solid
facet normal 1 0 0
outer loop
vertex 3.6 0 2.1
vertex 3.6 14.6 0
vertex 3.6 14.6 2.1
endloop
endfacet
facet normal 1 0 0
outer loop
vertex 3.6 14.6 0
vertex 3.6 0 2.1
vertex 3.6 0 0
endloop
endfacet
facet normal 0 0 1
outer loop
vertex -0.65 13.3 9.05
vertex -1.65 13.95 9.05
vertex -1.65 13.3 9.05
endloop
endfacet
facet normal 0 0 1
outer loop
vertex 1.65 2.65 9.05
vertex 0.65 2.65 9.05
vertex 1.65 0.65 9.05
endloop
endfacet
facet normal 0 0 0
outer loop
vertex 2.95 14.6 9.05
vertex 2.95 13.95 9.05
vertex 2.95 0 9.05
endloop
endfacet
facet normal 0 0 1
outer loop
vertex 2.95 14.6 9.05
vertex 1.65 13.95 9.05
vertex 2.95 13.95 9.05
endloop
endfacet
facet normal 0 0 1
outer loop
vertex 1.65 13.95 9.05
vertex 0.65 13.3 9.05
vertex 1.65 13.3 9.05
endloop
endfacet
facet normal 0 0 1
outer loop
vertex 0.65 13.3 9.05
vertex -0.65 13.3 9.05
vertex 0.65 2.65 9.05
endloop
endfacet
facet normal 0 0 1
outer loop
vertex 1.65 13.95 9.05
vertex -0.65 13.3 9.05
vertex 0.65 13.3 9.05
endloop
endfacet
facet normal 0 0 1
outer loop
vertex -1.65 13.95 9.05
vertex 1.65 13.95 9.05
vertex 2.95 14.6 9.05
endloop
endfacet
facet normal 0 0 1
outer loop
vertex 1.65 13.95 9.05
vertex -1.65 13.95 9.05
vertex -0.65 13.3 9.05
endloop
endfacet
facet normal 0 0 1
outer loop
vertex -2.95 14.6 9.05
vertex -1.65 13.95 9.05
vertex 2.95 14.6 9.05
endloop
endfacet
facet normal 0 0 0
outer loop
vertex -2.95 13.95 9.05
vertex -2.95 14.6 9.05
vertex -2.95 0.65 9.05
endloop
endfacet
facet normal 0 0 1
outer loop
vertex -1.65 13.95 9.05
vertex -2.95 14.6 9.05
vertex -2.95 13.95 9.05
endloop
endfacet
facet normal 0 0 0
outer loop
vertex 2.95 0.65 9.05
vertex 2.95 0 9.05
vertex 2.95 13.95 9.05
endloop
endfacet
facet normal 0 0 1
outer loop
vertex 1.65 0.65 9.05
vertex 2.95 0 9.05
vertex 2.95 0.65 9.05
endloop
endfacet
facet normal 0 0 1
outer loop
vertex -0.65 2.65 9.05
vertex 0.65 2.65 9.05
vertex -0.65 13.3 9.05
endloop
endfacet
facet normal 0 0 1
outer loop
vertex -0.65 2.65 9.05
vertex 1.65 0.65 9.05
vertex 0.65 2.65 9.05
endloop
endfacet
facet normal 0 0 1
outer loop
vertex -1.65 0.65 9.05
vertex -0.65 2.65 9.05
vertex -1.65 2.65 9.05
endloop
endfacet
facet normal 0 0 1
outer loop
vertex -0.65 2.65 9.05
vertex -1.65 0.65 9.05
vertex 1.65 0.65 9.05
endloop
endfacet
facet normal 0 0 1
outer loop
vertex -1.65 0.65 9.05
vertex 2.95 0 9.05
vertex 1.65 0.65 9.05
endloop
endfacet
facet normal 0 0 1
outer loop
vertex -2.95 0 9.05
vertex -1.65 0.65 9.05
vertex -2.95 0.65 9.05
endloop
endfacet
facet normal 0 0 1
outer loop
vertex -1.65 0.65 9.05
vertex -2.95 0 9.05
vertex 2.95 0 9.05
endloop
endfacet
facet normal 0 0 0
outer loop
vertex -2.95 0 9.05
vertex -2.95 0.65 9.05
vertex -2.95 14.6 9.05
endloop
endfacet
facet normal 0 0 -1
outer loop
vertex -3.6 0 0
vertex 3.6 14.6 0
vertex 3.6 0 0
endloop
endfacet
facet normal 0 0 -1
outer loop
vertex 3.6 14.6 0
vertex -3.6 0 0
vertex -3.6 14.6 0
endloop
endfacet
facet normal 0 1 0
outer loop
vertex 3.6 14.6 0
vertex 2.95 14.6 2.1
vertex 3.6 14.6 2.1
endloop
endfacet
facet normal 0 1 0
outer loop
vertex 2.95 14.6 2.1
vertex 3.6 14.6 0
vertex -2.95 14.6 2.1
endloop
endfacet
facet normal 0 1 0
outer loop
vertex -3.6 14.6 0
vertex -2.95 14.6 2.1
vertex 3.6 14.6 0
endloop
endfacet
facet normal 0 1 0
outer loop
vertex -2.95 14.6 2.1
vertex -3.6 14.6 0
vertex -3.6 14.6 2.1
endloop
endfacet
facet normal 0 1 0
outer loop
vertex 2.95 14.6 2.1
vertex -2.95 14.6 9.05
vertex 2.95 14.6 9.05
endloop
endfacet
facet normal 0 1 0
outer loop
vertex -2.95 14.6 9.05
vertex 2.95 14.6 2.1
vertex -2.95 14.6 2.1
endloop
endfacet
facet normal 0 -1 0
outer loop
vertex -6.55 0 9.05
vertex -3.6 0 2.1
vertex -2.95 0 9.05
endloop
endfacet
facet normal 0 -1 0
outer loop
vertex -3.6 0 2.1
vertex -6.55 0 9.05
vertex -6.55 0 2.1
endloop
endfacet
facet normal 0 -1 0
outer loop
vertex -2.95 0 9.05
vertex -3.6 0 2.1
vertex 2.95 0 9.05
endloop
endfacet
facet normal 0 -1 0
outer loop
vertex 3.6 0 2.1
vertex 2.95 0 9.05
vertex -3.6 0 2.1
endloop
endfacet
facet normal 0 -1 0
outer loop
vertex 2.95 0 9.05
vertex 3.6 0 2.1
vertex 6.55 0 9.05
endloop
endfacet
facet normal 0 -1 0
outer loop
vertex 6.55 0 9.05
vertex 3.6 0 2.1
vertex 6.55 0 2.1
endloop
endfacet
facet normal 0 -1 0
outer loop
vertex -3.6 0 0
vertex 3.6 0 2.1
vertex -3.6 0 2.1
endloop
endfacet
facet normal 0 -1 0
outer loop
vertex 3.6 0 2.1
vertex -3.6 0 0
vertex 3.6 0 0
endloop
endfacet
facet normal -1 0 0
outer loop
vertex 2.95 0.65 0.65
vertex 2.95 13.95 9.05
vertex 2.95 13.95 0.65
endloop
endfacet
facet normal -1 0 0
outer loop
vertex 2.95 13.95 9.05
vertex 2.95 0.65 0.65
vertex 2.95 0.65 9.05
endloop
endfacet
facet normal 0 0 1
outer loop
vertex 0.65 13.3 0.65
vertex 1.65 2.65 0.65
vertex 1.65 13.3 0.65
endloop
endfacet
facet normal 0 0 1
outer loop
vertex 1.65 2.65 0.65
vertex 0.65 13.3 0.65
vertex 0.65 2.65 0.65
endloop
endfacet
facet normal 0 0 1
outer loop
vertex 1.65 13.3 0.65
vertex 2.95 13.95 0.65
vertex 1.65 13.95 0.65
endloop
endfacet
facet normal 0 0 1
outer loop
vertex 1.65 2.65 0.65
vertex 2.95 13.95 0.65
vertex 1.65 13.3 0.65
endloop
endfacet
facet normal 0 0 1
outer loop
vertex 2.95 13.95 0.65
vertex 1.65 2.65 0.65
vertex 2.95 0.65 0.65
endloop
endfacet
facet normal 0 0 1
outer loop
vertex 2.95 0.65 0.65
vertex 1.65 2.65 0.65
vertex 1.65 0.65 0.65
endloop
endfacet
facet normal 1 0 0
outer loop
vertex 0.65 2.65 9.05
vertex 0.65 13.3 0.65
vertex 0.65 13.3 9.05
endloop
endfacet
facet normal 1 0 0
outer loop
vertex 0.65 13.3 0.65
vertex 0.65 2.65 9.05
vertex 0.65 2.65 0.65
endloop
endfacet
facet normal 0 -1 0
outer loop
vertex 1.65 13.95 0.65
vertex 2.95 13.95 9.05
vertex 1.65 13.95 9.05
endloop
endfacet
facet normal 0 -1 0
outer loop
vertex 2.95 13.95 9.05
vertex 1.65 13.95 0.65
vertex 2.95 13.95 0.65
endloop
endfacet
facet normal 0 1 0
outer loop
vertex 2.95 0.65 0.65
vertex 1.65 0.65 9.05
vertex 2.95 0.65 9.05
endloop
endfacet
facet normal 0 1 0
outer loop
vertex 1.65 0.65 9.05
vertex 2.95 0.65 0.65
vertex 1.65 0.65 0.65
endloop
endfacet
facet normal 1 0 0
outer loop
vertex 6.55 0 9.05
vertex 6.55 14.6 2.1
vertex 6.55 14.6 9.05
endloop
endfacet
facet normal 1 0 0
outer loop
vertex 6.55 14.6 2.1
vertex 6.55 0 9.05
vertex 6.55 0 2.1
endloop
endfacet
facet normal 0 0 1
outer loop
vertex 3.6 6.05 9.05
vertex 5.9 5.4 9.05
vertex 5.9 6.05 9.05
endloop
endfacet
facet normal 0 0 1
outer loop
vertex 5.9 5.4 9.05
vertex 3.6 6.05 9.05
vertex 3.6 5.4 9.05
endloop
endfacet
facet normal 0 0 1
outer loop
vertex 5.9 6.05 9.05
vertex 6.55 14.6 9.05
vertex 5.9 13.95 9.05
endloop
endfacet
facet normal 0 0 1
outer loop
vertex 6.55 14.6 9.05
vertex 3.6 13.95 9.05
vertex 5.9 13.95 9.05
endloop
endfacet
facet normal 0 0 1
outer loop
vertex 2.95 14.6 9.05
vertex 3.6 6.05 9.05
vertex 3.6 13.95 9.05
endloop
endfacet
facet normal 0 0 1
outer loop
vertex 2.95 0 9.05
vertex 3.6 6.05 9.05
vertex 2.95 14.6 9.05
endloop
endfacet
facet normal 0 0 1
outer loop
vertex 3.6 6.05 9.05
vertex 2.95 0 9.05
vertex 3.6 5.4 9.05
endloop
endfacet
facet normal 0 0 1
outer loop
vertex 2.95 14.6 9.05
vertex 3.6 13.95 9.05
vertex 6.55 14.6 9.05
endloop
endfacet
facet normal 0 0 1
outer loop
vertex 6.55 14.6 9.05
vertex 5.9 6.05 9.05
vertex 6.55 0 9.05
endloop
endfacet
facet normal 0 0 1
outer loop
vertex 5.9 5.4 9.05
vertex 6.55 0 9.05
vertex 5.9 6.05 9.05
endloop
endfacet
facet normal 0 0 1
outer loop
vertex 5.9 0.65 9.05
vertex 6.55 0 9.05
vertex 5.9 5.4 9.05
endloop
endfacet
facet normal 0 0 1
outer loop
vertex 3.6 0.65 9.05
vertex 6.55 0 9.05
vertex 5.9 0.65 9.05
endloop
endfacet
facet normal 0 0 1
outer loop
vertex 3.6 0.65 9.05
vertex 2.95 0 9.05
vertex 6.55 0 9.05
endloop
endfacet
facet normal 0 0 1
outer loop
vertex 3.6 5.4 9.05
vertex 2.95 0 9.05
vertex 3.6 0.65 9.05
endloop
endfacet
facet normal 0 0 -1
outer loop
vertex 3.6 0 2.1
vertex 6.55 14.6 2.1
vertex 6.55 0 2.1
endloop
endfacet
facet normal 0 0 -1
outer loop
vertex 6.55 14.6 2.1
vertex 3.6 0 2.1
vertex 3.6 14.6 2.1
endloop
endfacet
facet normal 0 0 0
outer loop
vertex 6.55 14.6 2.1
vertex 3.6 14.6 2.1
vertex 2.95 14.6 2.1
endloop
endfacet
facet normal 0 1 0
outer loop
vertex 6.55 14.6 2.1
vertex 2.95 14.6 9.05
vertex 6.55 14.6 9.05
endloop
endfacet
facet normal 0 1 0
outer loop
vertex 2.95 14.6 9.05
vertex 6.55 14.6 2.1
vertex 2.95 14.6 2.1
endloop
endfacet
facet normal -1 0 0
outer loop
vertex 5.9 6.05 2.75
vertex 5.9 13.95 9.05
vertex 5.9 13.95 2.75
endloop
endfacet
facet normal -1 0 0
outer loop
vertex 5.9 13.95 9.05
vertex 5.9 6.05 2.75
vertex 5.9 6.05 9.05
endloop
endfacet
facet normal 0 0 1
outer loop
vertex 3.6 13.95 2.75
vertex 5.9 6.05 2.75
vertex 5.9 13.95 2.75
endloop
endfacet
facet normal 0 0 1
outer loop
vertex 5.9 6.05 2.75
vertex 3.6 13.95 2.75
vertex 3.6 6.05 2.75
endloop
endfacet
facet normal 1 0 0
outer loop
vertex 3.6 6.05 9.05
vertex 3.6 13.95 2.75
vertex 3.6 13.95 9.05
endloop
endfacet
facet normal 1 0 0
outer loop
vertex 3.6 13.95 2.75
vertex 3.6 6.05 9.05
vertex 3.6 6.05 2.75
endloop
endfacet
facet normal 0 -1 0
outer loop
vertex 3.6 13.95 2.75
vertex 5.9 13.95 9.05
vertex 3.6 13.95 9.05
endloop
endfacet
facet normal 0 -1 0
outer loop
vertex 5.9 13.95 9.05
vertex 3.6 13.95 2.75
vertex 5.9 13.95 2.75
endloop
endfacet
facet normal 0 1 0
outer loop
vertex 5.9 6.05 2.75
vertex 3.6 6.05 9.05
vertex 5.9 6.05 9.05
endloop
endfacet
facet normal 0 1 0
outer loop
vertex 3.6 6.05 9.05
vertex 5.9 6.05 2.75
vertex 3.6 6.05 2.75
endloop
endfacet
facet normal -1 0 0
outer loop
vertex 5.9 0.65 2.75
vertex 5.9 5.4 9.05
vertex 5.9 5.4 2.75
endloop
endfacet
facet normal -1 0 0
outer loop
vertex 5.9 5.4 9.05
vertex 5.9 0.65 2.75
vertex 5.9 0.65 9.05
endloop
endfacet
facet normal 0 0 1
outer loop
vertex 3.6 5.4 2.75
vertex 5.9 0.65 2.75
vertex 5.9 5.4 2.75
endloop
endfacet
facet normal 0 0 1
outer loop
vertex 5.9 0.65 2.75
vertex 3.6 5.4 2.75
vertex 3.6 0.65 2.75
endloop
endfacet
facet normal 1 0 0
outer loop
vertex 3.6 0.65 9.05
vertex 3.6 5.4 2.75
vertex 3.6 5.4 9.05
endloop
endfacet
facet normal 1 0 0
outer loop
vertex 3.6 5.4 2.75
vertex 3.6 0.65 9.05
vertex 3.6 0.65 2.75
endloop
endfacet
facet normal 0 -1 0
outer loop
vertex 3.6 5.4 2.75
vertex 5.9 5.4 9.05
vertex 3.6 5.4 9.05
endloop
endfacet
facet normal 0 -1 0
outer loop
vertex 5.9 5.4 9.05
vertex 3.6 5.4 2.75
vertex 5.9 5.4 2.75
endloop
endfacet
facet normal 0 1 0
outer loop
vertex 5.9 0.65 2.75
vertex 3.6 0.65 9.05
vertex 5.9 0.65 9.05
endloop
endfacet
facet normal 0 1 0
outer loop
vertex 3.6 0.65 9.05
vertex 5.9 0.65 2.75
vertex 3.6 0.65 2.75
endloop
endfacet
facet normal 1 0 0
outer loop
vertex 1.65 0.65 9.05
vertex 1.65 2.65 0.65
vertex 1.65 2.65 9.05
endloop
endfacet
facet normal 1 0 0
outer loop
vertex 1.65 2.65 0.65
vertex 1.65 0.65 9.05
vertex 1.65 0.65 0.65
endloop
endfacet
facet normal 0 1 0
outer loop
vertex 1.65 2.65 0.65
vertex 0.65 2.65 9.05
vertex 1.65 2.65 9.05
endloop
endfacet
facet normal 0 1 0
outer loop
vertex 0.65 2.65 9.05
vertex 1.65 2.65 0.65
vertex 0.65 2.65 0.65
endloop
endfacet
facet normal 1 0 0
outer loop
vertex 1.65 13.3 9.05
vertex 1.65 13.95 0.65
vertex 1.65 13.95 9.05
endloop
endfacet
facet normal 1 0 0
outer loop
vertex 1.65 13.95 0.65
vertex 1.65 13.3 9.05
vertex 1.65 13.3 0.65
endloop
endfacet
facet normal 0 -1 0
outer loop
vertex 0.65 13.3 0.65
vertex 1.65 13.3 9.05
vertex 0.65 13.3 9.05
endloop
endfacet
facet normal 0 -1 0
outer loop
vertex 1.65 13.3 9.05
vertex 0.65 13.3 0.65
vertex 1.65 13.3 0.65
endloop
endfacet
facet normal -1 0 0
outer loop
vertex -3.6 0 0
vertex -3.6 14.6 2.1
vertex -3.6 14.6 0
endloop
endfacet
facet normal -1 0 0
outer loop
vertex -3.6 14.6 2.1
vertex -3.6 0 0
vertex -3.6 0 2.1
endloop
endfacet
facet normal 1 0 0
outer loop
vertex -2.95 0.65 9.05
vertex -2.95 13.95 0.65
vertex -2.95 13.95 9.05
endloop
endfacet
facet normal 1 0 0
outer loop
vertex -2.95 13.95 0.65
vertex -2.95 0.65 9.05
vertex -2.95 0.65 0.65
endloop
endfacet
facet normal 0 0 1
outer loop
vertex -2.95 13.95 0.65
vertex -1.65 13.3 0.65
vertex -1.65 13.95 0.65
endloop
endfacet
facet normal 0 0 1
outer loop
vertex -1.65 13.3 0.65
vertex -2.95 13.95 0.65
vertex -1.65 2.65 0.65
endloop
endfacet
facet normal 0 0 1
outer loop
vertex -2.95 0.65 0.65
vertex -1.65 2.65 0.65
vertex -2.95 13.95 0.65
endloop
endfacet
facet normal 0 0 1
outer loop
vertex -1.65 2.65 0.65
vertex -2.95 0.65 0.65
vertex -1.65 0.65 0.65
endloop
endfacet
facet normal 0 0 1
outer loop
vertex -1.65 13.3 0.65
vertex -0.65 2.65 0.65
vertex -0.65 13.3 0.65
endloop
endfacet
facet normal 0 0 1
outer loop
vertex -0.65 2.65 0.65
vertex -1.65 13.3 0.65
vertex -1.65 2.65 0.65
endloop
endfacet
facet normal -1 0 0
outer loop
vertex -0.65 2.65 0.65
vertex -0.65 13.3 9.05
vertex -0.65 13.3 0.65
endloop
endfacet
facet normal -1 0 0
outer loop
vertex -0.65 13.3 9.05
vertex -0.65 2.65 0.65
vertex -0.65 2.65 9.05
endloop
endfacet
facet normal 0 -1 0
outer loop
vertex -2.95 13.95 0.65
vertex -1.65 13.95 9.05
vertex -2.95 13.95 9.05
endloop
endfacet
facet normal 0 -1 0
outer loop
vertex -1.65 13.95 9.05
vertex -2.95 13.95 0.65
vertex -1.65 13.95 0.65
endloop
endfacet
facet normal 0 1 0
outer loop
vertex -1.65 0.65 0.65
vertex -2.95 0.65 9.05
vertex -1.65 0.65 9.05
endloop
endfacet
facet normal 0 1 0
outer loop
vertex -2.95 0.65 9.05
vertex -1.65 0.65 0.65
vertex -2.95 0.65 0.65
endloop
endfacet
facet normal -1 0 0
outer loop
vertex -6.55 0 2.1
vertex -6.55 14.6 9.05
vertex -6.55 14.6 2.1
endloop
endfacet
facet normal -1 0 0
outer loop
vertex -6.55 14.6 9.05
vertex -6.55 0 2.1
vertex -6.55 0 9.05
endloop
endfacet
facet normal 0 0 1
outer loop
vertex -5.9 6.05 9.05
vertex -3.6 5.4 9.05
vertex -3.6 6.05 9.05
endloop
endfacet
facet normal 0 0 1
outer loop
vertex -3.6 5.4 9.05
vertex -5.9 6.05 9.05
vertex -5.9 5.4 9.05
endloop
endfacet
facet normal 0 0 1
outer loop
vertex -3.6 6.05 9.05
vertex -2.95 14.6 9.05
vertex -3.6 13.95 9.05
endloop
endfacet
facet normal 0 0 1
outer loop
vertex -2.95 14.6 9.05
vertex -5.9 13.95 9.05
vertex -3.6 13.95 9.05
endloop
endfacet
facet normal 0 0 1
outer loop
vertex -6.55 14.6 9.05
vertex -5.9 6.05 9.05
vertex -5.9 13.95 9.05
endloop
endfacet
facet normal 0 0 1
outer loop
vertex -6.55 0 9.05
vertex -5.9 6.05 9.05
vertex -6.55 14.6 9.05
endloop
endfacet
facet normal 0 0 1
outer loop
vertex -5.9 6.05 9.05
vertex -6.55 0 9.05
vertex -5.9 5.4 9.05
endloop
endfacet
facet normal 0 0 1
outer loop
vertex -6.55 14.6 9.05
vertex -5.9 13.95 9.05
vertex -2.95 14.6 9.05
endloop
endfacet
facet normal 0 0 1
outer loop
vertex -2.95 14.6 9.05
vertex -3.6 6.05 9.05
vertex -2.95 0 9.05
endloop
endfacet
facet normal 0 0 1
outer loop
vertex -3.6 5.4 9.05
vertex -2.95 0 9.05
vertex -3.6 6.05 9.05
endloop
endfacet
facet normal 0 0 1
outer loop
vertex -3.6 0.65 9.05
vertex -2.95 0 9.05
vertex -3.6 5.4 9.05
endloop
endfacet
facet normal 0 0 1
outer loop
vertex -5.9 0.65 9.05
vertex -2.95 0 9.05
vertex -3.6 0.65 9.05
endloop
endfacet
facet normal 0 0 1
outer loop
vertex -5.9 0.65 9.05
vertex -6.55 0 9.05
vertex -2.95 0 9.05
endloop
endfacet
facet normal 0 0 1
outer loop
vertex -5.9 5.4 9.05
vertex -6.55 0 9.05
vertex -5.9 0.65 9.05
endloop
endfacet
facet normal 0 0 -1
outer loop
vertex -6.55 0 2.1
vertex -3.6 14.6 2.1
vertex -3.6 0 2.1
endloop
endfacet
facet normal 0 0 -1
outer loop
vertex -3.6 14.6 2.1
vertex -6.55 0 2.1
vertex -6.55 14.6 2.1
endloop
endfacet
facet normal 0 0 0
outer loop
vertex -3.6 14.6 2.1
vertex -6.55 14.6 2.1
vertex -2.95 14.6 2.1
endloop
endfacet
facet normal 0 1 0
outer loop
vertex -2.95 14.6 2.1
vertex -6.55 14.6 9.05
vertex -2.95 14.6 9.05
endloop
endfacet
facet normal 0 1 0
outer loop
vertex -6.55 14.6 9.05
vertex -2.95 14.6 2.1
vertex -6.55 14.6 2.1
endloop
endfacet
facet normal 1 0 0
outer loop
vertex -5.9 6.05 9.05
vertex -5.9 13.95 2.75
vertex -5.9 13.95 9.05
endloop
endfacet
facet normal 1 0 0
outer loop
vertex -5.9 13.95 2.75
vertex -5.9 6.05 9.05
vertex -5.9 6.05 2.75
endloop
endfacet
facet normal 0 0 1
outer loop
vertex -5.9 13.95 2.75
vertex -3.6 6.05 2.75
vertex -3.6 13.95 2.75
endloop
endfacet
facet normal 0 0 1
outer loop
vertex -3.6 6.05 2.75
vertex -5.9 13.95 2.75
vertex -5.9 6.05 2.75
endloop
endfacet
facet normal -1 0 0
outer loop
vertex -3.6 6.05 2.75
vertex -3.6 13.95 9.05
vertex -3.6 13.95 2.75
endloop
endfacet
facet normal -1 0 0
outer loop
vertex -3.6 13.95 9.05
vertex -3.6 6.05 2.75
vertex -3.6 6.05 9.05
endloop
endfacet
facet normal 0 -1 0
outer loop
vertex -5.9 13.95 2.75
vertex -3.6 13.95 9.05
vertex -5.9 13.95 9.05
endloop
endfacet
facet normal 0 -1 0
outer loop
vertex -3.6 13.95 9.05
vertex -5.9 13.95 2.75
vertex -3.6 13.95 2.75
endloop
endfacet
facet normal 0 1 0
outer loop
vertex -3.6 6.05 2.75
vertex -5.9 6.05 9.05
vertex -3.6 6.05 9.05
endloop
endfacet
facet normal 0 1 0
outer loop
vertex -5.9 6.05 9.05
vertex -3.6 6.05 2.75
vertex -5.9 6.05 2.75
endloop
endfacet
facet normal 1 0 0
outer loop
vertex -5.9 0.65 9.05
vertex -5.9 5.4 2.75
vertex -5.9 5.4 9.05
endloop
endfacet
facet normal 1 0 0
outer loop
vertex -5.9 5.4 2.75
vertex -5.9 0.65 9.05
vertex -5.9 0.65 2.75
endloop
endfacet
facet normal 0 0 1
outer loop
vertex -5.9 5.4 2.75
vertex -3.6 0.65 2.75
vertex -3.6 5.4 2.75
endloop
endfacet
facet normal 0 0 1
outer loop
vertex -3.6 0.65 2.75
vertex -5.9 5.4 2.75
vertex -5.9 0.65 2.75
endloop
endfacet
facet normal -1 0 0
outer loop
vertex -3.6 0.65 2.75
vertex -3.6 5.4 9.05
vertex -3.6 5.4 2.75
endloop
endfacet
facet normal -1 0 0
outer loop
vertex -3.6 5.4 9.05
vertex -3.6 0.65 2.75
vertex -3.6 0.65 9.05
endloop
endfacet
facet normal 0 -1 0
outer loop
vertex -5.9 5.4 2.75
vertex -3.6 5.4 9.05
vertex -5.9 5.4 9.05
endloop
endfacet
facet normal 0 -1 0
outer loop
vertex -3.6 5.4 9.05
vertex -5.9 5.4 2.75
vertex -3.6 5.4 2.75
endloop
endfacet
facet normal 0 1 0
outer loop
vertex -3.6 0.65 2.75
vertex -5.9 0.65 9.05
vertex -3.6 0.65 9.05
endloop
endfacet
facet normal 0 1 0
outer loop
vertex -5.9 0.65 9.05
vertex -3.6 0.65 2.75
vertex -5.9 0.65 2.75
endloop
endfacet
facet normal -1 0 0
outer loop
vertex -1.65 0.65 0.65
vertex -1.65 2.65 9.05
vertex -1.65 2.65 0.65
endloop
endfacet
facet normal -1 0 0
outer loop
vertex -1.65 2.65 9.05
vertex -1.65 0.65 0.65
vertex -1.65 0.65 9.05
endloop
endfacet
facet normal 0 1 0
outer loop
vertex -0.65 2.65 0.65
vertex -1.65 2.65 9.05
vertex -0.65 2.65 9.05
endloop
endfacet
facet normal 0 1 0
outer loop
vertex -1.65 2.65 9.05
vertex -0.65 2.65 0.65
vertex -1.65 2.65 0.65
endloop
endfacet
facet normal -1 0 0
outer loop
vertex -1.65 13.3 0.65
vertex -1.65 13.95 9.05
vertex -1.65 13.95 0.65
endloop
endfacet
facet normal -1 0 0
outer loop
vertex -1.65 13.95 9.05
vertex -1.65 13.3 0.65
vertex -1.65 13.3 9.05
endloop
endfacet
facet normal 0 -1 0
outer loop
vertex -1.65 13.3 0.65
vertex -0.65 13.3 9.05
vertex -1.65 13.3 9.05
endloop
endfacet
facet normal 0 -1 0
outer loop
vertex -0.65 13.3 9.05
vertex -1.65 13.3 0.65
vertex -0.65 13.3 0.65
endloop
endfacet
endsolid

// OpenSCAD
module box(thickness=1, iw=1, id=1, ih=1) {
    difference() {
        cube([
            iw + (2 * thickness),
            id + (2 * thickness),
            ih + thickness,
        ]);
        translate([thickness, thickness, thickness]) cube([
            iw,
            id,
            ih + 1.1 * thickness,
        ]);
    }
}

thic = 0.65;
h = 8.4;

module  half(){
    box(thickness=thic, iw=2.3, id=13.3, ih=h);
    translate([thic, thic, thic]) 
        cube([1, 2, h]);
    translate([thic, 13.3 , thic]) 
        cube([1, 0.65, h]);
    
    // Hand rest holder
    translate([thic + 2.3, (13.3 - 7.9), h - 6.3]) 
        box(thickness=thic, iw=2.3, id=7.9, ih=6.3);
    // Cable holder
    translate([thic + 2.3, 0, h - 6.3]) 
        box(thickness=thic, iw=2.3, id=(13.3-7.9 - thic), ih=6.3);
}
half();
mirror([1,0,0]) half();
